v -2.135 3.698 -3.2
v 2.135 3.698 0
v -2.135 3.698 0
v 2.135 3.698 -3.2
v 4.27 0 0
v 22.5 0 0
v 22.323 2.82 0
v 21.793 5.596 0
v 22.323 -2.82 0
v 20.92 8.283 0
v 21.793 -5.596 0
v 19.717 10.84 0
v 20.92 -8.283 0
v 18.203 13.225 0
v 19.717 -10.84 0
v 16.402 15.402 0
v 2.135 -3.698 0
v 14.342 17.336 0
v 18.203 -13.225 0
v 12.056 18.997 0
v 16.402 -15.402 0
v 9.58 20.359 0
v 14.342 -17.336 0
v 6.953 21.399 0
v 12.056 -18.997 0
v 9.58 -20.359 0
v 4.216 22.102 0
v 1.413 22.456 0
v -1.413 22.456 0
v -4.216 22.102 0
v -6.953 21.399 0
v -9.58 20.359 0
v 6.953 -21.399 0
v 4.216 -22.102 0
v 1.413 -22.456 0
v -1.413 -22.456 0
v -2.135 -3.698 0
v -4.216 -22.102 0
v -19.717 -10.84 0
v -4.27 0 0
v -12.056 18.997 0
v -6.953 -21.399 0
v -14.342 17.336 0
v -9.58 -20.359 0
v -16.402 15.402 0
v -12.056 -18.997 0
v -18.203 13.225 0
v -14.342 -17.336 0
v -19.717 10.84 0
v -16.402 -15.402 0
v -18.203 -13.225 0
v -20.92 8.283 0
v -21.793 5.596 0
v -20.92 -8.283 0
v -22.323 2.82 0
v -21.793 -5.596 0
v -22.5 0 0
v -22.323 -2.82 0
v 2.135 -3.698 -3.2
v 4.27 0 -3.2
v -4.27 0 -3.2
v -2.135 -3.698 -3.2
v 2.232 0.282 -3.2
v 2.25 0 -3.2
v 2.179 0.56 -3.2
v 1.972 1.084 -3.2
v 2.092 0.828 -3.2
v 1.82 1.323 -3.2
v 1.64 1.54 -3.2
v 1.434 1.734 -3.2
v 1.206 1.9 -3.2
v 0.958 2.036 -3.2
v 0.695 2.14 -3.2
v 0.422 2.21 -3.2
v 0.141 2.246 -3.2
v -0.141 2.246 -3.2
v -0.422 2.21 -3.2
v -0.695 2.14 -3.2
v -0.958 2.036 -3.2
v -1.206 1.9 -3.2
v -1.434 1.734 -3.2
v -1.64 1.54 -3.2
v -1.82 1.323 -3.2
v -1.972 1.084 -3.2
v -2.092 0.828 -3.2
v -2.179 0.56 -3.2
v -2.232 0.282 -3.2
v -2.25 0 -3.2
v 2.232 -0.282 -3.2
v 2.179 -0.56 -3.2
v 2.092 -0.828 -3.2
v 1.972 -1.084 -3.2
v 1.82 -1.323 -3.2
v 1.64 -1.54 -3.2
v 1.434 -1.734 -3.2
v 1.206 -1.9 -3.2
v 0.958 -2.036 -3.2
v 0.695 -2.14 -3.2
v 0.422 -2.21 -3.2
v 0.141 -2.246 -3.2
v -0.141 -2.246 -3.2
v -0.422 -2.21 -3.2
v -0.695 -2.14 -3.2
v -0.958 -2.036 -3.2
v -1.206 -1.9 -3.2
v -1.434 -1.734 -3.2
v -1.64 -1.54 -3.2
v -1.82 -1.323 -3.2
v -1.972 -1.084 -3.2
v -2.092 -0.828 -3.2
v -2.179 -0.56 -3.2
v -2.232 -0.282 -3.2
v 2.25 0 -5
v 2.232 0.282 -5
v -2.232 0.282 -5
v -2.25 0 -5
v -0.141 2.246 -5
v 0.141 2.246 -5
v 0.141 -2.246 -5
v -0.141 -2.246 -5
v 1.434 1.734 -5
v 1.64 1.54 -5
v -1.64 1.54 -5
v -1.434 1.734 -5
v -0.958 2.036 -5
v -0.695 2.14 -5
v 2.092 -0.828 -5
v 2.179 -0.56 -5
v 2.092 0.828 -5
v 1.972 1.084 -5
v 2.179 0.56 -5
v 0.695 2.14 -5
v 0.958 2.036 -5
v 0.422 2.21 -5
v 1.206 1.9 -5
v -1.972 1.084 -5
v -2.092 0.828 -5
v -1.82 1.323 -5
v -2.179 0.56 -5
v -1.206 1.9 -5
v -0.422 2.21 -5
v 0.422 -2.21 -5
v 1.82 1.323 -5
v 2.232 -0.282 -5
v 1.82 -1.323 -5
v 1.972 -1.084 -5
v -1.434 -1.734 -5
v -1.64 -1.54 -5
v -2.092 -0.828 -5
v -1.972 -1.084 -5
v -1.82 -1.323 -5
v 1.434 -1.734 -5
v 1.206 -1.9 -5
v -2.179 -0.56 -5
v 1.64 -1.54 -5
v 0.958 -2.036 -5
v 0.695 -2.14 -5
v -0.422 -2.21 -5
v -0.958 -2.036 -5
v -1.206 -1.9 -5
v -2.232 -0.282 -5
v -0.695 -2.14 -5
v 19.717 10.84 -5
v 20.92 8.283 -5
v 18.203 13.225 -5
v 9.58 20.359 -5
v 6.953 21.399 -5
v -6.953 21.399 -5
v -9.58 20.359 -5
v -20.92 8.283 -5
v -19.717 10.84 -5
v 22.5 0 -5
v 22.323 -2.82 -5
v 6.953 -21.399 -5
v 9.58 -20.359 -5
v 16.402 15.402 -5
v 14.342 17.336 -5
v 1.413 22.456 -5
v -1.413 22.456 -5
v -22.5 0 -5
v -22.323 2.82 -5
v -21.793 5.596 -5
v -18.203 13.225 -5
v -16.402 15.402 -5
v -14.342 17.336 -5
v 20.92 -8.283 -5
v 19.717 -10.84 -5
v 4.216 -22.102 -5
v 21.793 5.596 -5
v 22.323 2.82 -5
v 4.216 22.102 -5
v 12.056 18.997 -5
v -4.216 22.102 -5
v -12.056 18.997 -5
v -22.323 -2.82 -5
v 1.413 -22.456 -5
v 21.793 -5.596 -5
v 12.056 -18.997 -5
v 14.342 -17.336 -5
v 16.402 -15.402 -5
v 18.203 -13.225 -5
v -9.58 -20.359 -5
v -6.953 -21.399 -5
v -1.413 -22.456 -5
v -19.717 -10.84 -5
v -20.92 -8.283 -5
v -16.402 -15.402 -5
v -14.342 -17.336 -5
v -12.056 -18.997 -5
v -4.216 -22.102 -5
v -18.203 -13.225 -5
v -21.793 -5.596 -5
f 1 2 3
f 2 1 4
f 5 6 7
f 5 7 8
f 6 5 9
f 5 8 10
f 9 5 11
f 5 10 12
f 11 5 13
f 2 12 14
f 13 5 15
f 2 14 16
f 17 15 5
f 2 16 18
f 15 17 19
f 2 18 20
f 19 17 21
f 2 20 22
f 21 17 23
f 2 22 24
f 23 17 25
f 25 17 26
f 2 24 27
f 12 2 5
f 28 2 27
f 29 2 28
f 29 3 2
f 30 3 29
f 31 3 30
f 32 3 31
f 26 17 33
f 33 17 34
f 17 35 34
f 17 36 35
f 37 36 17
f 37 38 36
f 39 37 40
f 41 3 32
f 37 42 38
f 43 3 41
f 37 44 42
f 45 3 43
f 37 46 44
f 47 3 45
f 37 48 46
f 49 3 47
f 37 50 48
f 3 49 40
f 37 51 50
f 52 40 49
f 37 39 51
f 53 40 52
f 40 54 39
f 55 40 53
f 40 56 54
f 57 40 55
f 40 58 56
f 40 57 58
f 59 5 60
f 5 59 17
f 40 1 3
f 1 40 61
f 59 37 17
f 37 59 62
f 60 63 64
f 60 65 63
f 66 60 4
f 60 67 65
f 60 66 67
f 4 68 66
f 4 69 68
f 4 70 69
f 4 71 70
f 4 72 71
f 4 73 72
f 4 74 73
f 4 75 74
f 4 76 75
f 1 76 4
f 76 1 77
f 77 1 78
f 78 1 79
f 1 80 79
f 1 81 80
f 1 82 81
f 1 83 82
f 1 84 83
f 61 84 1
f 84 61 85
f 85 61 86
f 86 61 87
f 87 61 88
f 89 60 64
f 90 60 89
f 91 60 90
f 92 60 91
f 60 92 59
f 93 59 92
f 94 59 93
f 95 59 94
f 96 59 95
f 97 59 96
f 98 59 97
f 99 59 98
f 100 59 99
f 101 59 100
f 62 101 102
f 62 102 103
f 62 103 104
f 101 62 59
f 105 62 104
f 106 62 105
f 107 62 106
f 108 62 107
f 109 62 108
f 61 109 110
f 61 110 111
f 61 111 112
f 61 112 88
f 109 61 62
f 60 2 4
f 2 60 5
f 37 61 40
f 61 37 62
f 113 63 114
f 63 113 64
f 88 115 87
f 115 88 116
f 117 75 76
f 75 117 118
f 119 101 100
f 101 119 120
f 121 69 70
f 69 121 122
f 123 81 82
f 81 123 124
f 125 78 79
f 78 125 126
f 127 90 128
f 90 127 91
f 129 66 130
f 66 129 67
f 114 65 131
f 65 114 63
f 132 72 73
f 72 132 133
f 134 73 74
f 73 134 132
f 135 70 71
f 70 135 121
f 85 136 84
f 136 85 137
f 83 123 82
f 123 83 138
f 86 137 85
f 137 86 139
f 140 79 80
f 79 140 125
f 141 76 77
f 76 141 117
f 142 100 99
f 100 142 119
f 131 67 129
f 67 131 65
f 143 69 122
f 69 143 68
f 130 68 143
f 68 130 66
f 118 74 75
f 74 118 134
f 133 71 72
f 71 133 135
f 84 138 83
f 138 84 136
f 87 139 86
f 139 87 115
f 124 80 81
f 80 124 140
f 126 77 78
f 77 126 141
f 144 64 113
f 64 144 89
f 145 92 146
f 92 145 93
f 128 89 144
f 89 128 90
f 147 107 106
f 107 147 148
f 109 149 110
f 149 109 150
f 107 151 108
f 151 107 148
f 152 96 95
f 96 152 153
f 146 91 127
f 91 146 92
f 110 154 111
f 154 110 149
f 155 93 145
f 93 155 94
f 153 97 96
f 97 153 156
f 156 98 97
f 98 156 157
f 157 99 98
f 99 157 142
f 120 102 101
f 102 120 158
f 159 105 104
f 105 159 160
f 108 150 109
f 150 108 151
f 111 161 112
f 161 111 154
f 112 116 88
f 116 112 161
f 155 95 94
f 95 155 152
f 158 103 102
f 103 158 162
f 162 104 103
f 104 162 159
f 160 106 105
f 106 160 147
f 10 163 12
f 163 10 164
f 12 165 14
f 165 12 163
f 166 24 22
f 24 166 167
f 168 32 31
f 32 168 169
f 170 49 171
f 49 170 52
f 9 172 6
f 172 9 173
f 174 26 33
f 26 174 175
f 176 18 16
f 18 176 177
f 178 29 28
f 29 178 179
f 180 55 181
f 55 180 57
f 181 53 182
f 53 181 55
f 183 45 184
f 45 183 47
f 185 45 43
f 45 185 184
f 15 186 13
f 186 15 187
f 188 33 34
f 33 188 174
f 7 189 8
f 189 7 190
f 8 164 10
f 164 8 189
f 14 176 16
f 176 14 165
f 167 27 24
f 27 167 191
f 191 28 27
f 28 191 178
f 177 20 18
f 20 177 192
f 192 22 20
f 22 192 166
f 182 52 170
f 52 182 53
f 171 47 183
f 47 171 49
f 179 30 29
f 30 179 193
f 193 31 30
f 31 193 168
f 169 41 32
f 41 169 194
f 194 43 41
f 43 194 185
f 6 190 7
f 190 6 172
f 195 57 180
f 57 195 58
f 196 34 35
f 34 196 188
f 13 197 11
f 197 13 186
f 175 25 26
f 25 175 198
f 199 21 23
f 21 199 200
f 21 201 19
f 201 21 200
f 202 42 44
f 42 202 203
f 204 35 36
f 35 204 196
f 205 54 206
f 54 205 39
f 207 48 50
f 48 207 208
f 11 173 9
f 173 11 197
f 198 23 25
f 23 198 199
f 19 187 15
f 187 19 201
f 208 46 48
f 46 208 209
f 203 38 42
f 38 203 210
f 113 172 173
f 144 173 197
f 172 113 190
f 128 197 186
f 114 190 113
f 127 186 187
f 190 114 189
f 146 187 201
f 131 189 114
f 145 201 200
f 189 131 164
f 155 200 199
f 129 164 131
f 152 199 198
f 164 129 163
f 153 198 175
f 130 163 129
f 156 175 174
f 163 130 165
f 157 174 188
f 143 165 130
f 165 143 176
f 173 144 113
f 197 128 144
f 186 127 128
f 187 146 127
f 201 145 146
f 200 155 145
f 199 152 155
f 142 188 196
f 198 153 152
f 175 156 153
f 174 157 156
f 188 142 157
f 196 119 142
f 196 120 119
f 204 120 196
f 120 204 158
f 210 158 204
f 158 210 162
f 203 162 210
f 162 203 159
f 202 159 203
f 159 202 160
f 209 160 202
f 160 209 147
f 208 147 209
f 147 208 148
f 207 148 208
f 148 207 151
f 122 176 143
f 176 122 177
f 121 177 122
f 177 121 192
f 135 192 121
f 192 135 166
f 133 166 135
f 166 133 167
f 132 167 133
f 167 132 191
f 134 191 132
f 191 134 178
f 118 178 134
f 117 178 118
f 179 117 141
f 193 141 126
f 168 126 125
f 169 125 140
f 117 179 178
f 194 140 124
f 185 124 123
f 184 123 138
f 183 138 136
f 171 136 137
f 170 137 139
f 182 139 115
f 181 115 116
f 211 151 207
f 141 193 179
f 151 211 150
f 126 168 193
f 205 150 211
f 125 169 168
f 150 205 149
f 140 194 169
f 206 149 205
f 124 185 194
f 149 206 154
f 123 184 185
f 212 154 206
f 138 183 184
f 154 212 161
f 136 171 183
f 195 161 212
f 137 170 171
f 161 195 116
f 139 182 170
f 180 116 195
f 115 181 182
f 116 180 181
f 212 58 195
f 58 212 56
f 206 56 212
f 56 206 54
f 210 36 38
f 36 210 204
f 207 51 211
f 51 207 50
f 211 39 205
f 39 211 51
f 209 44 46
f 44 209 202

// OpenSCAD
$fn = 50;


difference() {
	union() {
		translate(v = [0, 0, -5.0000000000]) {
			cylinder(h = 5.0000000000, r = 22.5000000000);
		}
	}
	union() {
		translate(v = [0, 0, 0]) {
			rotate(a = [0, 0, 0]) {
				difference() {
					union() {
						translate(v = [0, 0, -3.2000000000]) {
							linear_extrude(height = 3.2000000000) {
								polygon(points = [[4.2698000000, 0.0000000000], [2.1349000000, 3.6977552691], [-2.1349000000, 3.6977552691], [-4.2698000000, 0.0000000000], [-2.1349000000, -3.6977552691], [2.1349000000, -3.6977552691]]);
							}
						}
					}
					union();
				}
			}
		}
		#translate(v = [0, 0, -100.0000000000]) {
			cylinder(h = 200, r = 2.2500000000);
		}
	}
}
